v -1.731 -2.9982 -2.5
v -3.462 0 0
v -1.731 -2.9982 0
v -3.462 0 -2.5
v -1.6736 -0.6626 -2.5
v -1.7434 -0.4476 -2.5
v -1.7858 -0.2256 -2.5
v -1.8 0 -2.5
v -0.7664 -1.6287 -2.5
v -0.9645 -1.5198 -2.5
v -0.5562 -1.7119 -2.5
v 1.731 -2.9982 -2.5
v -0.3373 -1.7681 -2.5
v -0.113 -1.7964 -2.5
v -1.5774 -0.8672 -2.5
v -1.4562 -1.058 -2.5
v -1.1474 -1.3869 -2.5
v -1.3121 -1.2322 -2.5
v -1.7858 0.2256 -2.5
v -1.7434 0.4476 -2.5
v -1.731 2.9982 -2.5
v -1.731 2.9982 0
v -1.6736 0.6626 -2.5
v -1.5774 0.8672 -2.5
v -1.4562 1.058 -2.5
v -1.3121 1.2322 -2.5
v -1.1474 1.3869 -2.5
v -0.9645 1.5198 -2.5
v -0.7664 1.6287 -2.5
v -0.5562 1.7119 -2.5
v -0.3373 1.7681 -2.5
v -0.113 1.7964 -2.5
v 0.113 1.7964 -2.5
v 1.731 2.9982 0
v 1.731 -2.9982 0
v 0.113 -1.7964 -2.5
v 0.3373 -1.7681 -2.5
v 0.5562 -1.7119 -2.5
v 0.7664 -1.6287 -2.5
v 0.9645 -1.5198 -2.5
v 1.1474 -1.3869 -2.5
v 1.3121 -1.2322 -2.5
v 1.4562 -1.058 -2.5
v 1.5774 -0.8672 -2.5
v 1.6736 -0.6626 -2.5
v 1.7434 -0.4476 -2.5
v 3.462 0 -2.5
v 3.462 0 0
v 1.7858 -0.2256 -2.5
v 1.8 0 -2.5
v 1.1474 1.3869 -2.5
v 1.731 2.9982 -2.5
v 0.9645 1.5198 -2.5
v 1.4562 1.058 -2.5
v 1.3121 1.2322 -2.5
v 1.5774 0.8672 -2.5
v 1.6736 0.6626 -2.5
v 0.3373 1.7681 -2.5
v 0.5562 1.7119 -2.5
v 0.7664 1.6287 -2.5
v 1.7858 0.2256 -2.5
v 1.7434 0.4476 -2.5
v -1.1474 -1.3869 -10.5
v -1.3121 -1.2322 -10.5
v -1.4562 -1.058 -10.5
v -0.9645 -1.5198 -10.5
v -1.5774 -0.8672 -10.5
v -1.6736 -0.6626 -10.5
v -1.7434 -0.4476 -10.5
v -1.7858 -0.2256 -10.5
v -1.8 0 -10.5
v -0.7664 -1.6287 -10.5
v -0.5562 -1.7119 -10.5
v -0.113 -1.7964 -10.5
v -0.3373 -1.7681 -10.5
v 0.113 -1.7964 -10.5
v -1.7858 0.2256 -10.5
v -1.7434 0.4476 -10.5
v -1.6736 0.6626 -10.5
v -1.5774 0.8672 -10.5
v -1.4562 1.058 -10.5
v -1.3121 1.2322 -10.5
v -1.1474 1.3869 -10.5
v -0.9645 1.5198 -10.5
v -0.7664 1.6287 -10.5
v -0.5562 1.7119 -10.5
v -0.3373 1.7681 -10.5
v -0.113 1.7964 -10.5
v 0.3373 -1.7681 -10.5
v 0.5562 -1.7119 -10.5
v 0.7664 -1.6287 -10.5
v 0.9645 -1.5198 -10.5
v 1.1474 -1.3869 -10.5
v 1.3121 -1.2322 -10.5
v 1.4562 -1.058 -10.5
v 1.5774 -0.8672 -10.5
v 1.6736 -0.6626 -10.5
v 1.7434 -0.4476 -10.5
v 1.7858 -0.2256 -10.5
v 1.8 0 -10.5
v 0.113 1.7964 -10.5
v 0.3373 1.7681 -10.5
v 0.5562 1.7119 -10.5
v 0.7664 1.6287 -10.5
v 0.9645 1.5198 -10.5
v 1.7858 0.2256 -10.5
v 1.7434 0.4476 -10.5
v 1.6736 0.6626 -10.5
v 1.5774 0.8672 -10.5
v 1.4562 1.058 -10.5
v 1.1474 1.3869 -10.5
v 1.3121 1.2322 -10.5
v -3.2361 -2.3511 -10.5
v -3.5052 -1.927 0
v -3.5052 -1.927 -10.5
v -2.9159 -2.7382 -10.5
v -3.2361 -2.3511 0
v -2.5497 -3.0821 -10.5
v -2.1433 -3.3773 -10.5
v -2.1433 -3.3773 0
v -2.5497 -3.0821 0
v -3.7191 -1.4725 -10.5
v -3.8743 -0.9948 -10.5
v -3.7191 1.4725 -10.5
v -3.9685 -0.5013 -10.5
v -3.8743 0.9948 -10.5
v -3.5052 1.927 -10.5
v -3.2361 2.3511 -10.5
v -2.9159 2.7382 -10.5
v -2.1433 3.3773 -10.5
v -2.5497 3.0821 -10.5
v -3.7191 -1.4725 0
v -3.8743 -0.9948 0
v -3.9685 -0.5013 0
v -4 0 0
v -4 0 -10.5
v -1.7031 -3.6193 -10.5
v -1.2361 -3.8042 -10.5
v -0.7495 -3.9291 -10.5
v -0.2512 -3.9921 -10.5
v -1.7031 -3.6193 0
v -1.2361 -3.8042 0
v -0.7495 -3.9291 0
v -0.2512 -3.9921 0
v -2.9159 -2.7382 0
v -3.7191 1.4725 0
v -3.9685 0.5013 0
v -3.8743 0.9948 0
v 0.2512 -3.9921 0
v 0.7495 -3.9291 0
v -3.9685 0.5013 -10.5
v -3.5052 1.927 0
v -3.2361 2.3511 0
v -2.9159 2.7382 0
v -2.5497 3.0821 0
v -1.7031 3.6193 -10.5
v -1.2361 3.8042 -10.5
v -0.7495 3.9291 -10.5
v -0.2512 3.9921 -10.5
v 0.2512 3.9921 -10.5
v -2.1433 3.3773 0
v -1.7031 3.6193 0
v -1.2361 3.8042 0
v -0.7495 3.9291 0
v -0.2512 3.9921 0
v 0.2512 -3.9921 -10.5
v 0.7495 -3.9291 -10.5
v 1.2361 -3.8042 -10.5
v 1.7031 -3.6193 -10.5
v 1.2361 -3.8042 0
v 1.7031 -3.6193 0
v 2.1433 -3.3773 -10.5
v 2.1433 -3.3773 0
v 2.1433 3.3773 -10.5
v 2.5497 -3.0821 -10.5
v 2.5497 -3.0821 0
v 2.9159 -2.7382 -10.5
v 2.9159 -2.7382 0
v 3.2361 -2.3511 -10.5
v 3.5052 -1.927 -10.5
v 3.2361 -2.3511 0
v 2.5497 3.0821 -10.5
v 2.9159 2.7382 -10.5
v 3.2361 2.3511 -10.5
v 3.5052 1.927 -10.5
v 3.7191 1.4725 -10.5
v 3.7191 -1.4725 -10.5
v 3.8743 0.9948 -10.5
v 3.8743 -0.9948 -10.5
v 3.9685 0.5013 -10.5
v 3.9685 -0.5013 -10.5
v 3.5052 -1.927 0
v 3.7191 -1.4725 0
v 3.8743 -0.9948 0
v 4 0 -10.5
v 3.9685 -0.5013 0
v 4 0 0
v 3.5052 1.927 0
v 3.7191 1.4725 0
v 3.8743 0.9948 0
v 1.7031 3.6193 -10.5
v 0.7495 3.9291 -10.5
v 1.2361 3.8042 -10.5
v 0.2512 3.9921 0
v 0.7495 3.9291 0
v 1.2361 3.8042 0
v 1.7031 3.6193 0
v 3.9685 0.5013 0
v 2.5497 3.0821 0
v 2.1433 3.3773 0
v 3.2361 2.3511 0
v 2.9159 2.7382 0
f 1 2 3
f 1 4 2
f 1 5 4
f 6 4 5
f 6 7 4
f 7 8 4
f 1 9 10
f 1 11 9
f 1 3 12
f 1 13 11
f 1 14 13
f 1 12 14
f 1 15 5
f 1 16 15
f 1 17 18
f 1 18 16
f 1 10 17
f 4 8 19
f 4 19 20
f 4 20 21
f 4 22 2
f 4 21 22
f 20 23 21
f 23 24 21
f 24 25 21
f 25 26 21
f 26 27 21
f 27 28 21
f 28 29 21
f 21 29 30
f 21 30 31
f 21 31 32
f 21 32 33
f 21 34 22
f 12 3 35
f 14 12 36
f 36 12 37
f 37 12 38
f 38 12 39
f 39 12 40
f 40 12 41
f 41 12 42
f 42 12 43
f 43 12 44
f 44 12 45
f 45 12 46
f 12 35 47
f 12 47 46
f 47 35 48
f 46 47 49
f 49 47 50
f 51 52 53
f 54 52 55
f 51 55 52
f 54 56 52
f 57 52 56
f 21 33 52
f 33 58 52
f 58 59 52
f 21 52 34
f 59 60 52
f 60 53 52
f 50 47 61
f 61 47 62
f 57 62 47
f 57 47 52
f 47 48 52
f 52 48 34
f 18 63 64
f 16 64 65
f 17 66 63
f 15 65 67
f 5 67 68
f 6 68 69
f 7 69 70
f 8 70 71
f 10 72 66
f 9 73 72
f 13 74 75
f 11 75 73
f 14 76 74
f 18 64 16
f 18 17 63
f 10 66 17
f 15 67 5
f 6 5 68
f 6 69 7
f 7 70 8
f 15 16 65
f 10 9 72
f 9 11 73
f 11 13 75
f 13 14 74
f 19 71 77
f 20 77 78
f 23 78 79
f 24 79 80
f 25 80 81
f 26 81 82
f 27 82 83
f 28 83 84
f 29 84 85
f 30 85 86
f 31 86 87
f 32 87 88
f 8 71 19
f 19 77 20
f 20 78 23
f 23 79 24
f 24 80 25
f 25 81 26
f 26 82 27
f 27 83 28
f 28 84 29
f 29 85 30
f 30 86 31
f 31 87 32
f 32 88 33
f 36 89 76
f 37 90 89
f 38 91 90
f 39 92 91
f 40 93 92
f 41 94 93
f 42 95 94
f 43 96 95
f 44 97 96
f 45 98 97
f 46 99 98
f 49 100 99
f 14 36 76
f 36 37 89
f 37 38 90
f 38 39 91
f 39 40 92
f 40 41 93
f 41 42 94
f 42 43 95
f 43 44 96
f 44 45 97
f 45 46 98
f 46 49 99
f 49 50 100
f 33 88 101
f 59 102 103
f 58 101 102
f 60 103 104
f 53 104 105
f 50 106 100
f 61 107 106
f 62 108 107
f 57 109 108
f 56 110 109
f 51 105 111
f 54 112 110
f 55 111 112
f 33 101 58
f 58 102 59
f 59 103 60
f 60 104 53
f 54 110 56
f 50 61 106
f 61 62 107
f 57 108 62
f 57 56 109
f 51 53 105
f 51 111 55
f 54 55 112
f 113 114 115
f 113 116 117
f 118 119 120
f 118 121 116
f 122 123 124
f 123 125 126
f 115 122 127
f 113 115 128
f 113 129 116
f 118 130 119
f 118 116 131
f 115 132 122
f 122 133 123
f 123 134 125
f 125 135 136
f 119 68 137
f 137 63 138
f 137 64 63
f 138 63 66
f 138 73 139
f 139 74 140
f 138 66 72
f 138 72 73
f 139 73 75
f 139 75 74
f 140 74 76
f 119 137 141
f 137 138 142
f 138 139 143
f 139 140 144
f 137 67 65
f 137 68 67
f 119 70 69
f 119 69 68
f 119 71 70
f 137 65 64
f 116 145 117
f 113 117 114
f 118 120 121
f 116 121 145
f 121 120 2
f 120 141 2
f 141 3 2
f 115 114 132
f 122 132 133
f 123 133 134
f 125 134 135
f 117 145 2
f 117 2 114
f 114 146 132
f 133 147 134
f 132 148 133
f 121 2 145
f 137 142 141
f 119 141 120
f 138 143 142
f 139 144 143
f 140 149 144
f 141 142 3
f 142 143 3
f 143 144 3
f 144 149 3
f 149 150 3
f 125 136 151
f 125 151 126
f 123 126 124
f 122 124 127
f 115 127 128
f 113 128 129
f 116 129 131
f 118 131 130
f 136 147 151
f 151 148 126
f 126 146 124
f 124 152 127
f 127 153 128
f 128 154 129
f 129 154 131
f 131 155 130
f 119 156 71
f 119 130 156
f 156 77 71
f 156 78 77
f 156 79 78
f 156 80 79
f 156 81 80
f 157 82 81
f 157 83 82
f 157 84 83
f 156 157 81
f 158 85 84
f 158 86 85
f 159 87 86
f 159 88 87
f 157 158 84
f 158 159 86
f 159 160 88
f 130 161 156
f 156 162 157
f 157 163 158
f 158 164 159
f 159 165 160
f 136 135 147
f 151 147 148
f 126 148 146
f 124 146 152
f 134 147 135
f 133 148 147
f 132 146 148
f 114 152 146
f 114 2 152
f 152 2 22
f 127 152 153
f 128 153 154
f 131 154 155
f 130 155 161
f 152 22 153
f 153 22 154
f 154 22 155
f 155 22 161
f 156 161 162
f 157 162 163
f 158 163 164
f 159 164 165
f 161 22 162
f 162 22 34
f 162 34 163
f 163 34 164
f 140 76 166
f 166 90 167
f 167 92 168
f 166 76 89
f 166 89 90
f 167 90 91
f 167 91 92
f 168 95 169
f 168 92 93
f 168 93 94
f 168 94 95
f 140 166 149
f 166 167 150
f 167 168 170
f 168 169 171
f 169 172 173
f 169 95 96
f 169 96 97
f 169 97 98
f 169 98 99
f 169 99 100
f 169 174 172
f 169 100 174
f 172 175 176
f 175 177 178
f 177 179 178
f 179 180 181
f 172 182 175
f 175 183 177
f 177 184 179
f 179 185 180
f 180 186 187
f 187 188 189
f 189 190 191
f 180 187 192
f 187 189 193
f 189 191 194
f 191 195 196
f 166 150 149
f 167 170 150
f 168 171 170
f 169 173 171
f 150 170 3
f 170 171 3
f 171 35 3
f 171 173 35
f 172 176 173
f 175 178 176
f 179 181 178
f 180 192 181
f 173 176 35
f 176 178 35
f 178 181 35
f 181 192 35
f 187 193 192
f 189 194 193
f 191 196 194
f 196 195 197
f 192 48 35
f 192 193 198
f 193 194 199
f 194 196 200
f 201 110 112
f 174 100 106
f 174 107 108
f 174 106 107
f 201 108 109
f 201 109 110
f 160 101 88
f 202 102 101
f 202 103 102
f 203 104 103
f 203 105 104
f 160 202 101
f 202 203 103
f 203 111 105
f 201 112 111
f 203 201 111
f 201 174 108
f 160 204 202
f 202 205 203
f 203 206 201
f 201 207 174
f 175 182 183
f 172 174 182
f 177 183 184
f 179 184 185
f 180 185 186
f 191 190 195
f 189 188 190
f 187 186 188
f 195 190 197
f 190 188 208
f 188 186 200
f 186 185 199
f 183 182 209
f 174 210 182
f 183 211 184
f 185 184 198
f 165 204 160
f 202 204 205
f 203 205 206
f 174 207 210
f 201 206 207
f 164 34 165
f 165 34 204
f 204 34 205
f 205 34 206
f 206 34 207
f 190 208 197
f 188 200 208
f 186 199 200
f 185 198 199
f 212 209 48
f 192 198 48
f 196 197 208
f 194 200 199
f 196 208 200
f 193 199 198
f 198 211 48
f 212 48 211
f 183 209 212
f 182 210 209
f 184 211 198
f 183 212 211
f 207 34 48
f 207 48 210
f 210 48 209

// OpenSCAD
$fn = 50;

difference() {
	union() {
		translate(v = [0, 0, -10.5]) {
			cylinder(h = 13.5, r = 4.0);
		}
	}
	union() {
		translate(v = [0, 0, 0]) {
			rotate(a = [0, 0, 0]) {
				difference() {
					union() {
						translate(v = [0, 0, -2.5]) {
							linear_extrude(height = 2.5) {
								polygon(points = [[3.4619999999999997, 0.0], [1.7310000000000003, 2.9981799479017264], [-1.7309999999999992, 2.9981799479017264], [-3.4619999999999997, 4.2397272186481365e-16], [-1.7310000000000014, -2.998179947901726], [1.7309999999999977, -2.9981799479017277]]);
							}
						}
					}
					union();
				}
			}
		}
		#cylinder(h = 3, r = 5.0);
		#translate(v = [0, 0, -100.0]) {
			cylinder(h = 200, r = 1.8);
		}
	}
}
